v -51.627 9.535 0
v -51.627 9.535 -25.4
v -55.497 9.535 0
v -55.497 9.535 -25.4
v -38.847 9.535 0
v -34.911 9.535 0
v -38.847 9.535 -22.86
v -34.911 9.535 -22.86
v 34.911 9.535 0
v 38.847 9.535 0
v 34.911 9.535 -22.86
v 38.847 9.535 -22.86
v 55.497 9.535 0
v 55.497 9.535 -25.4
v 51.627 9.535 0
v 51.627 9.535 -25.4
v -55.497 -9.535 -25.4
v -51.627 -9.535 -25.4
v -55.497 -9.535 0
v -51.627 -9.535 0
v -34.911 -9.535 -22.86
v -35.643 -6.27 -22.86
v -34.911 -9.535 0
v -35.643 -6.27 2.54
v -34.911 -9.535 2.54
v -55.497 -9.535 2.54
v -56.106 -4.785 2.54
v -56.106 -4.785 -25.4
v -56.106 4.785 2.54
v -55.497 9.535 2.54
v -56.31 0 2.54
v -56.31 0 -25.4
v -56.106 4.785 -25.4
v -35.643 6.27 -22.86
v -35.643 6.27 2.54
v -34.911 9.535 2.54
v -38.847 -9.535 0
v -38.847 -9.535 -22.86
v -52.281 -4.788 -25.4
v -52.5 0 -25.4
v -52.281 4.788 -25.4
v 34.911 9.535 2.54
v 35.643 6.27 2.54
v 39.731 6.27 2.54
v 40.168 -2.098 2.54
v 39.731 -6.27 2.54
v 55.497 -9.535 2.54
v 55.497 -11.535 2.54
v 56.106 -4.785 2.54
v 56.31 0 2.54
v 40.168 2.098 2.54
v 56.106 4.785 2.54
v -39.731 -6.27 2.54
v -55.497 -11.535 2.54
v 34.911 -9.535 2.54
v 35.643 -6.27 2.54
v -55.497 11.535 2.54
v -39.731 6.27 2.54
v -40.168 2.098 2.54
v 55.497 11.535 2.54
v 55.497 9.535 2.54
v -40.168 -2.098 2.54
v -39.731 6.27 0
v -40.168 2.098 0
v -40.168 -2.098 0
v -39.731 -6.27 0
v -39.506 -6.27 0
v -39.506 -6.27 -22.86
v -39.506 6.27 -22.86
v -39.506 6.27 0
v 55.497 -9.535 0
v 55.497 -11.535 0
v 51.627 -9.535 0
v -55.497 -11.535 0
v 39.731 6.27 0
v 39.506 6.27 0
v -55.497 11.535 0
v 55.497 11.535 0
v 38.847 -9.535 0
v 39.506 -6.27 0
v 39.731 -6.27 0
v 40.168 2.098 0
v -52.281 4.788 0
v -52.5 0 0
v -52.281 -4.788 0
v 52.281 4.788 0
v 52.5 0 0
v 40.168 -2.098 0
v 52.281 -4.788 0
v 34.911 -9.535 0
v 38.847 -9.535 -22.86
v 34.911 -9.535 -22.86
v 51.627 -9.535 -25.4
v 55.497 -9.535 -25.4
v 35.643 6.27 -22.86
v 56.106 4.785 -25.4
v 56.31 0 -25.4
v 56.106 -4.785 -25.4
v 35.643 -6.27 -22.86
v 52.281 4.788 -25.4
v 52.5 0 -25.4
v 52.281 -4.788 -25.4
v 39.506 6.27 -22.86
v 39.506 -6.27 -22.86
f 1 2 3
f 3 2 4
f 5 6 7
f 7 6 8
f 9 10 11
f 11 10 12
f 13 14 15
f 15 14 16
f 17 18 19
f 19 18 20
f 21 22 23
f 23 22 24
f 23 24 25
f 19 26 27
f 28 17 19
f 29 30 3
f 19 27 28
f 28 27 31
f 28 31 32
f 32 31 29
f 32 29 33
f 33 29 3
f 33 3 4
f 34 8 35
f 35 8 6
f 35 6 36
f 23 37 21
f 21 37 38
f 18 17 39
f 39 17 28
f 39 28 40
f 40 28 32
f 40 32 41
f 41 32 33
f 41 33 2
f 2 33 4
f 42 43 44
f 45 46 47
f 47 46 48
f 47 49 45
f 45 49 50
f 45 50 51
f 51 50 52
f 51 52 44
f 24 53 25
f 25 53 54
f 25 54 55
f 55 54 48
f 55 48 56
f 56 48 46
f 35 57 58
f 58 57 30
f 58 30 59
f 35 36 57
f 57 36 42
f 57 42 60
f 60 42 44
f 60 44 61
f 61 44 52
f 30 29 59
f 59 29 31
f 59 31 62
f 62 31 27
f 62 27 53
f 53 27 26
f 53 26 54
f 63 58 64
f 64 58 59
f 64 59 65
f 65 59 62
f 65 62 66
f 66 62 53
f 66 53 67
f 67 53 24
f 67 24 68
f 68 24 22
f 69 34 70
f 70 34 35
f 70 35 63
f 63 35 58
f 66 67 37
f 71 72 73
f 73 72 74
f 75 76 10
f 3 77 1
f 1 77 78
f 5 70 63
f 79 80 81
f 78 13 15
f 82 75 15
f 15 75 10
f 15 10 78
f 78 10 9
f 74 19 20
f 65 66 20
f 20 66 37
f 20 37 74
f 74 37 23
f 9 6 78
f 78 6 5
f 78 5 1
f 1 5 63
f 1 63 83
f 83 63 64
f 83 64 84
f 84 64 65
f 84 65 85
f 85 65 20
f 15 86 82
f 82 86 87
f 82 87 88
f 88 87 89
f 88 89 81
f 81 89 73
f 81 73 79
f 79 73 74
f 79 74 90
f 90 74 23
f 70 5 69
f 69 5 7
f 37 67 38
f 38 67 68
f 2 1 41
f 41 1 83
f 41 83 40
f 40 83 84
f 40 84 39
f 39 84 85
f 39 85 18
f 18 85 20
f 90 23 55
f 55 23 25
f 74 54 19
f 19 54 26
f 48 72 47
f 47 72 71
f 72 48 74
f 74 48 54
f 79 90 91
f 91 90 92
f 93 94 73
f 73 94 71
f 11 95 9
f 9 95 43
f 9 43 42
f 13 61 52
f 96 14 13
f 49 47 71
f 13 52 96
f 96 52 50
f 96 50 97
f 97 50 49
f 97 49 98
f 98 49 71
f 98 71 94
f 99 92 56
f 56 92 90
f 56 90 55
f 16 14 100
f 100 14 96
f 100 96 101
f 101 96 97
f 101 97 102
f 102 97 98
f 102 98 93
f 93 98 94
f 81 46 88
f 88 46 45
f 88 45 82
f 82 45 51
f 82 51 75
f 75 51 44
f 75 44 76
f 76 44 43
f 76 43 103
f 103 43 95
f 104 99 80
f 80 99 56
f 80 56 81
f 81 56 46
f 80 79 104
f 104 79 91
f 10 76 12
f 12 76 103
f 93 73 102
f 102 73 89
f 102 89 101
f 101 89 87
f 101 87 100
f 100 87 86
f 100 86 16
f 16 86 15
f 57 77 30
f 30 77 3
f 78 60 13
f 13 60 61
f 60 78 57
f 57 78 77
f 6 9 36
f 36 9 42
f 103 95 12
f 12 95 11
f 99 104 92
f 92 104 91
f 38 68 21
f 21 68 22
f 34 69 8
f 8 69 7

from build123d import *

# Parameters (mm, degrees)
BOSS_EXTRUDE1_DEPTH        = 2.54
BOSS_EXTRUDE1_DEPTH_BACK   = 25.4
BOSS_EXTRUDE1_2_DEPTH      = 2.54
BOSS_EXTRUDE1_2_DEPTH_BACK = 25.4
CUT_EXTRUDE1_DEPTH         = 38.1
SKETCH5_R                  = 52.5
SKETCH5_R_2                = 40
CUT_EXTRUDE2_DEPTH         = 63.505162797
SKETCH6_W                  = 110.993636282
SKETCH6_H                  = 2.54
BOSS_EXTRUDE2_DEPTH        = 2
SKETCH7_W                  = 110.993636282
SKETCH7_H                  = 2.54
BOSS_EXTRUDE3_DEPTH        = 2
SKETCH8_W                  = 85.612929722
SKETCH8_H                  = 41.20835684
CUT_EXTRUDE4_DEPTH         = 2.54


with BuildPart() as part:
    # Sketch1 → Boss-Extrude1 (new, two sides: drawn at the far end of the back side and taken through both)
    with BuildSketch(Plane.XY.offset(-BOSS_EXTRUDE1_DEPTH_BACK)):
        with BuildLine():
            Line((-55.496818141, -9.53516), (-34.911270727, -9.53516))
            ThreePointArc((-34.911270727, -9.53516), (-36.19, 0), (-34.911270727, 9.53516))
            Line((-34.911270727, 9.53516), (-55.496818141, 9.53516))
            ThreePointArc((-55.496818141, 9.53516), (-56.31, 0), (-55.496818141, -9.53516))
        make_face()
    extrude(amount=BOSS_EXTRUDE1_DEPTH + BOSS_EXTRUDE1_DEPTH_BACK)


with BuildPart() as body_2:
    # Sketch1 → Boss-Extrude1 2 (new, two sides: drawn at the far end of the back side and taken through both)
    with BuildSketch(Plane.XY.offset(-BOSS_EXTRUDE1_2_DEPTH_BACK)):
        with BuildLine():
            Line((55.496818141, 9.53516), (34.911270727, 9.53516))
            ThreePointArc((34.911270727, 9.53516), (36.19, 0), (34.911270727, -9.53516))
            Line((34.911270727, -9.53516), (55.496818141, -9.53516))
            ThreePointArc((55.496818141, -9.53516), (56.31, 0), (55.496818141, 9.53516))
        make_face()
    extrude(amount=BOSS_EXTRUDE1_2_DEPTH + BOSS_EXTRUDE1_2_DEPTH_BACK)


with BuildPart() as cut_extrude1_tool:
    # Sketch3 → Cut-Extrude1 (new body)
    with BuildSketch(Plane.XY.offset(2.54)):
        with BuildLine():
            Line((39.730552161, 6.27), (31.319999693, 6.27))
            ThreePointArc((31.319999693, 6.27), (31.941435171, 0), (31.319999693, -6.27))
            Line((31.319999693, -6.27), (39.730552161, -6.27))
            ThreePointArc((39.730552161, -6.27), (40.22225348, 0), (39.730552161, 6.27))
        make_face()
        with BuildLine():
            Line((-31.319999693, 6.27), (-39.730552161, 6.27))
            ThreePointArc((-39.730552161, 6.27), (-40.22225348, 0), (-39.730552161, -6.27))
            Line((-39.730552161, -6.27), (-31.319999693, -6.27))
            ThreePointArc((-31.319999693, -6.27), (-31.941435171, 0), (-31.319999693, 6.27))
        make_face()
    extrude(amount=-CUT_EXTRUDE1_DEPTH)


with BuildPart() as part_1:
    add(part.part)

    # Cut-Extrude1: cut by cut_extrude1_tool
    add(cut_extrude1_tool.part, mode=Mode.SUBTRACT)


with BuildPart() as body_2_1:
    add(body_2.part)

    # Cut-Extrude1: cut by cut_extrude1_tool
    add(cut_extrude1_tool.part, mode=Mode.SUBTRACT)


with BuildPart() as cut_extrude2_tool:
    # Sketch5 → Cut-Extrude2 (new, through all)
    with BuildSketch(Plane.XY):
        Circle(SKETCH5_R)
        Circle(SKETCH5_R_2, mode=Mode.SUBTRACT)
    extrude(amount=-CUT_EXTRUDE2_DEPTH)


with BuildPart() as part_2:
    add(part_1.part)

    # Cut-Extrude2: cut by cut_extrude2_tool
    add(cut_extrude2_tool.part, mode=Mode.SUBTRACT)



with BuildPart() as body_2_2:
    add(body_2_1.part)

    # Cut-Extrude2: cut by cut_extrude2_tool
    add(cut_extrude2_tool.part, mode=Mode.SUBTRACT)


with BuildPart() as part_3:
    add(part_2.part)

    add(body_2_2.part)  # Boss-Extrude2 merges body 2
    # Sketch6 → Boss-Extrude2 (add)
    with BuildSketch(Plane.XZ.offset(9.53516)):
        with Locations((0, 1.27)):
            Rectangle(SKETCH6_W, SKETCH6_H)
    extrude(amount=BOSS_EXTRUDE2_DEPTH)

    # Sketch7 → Boss-Extrude3 (add)
    with BuildSketch(Plane(origin=(0, 9.53516, 0), x_dir=(1, 0, 0), z_dir=(0, 1, 0))):
        with Locations((0, -1.27)):
            Rectangle(SKETCH7_W, SKETCH7_H)
    extrude(amount=BOSS_EXTRUDE3_DEPTH)

    # Sketch8 → Cut-Extrude4 (cut)
    with BuildSketch(Plane(origin=(0, 0, -25.4), x_dir=(-1, 0, 0), z_dir=(0, 0, -1))):
        Rectangle(SKETCH8_W, SKETCH8_H)
    extrude(amount=-CUT_EXTRUDE4_DEPTH, mode=Mode.SUBTRACT)


solid = part_3.part
